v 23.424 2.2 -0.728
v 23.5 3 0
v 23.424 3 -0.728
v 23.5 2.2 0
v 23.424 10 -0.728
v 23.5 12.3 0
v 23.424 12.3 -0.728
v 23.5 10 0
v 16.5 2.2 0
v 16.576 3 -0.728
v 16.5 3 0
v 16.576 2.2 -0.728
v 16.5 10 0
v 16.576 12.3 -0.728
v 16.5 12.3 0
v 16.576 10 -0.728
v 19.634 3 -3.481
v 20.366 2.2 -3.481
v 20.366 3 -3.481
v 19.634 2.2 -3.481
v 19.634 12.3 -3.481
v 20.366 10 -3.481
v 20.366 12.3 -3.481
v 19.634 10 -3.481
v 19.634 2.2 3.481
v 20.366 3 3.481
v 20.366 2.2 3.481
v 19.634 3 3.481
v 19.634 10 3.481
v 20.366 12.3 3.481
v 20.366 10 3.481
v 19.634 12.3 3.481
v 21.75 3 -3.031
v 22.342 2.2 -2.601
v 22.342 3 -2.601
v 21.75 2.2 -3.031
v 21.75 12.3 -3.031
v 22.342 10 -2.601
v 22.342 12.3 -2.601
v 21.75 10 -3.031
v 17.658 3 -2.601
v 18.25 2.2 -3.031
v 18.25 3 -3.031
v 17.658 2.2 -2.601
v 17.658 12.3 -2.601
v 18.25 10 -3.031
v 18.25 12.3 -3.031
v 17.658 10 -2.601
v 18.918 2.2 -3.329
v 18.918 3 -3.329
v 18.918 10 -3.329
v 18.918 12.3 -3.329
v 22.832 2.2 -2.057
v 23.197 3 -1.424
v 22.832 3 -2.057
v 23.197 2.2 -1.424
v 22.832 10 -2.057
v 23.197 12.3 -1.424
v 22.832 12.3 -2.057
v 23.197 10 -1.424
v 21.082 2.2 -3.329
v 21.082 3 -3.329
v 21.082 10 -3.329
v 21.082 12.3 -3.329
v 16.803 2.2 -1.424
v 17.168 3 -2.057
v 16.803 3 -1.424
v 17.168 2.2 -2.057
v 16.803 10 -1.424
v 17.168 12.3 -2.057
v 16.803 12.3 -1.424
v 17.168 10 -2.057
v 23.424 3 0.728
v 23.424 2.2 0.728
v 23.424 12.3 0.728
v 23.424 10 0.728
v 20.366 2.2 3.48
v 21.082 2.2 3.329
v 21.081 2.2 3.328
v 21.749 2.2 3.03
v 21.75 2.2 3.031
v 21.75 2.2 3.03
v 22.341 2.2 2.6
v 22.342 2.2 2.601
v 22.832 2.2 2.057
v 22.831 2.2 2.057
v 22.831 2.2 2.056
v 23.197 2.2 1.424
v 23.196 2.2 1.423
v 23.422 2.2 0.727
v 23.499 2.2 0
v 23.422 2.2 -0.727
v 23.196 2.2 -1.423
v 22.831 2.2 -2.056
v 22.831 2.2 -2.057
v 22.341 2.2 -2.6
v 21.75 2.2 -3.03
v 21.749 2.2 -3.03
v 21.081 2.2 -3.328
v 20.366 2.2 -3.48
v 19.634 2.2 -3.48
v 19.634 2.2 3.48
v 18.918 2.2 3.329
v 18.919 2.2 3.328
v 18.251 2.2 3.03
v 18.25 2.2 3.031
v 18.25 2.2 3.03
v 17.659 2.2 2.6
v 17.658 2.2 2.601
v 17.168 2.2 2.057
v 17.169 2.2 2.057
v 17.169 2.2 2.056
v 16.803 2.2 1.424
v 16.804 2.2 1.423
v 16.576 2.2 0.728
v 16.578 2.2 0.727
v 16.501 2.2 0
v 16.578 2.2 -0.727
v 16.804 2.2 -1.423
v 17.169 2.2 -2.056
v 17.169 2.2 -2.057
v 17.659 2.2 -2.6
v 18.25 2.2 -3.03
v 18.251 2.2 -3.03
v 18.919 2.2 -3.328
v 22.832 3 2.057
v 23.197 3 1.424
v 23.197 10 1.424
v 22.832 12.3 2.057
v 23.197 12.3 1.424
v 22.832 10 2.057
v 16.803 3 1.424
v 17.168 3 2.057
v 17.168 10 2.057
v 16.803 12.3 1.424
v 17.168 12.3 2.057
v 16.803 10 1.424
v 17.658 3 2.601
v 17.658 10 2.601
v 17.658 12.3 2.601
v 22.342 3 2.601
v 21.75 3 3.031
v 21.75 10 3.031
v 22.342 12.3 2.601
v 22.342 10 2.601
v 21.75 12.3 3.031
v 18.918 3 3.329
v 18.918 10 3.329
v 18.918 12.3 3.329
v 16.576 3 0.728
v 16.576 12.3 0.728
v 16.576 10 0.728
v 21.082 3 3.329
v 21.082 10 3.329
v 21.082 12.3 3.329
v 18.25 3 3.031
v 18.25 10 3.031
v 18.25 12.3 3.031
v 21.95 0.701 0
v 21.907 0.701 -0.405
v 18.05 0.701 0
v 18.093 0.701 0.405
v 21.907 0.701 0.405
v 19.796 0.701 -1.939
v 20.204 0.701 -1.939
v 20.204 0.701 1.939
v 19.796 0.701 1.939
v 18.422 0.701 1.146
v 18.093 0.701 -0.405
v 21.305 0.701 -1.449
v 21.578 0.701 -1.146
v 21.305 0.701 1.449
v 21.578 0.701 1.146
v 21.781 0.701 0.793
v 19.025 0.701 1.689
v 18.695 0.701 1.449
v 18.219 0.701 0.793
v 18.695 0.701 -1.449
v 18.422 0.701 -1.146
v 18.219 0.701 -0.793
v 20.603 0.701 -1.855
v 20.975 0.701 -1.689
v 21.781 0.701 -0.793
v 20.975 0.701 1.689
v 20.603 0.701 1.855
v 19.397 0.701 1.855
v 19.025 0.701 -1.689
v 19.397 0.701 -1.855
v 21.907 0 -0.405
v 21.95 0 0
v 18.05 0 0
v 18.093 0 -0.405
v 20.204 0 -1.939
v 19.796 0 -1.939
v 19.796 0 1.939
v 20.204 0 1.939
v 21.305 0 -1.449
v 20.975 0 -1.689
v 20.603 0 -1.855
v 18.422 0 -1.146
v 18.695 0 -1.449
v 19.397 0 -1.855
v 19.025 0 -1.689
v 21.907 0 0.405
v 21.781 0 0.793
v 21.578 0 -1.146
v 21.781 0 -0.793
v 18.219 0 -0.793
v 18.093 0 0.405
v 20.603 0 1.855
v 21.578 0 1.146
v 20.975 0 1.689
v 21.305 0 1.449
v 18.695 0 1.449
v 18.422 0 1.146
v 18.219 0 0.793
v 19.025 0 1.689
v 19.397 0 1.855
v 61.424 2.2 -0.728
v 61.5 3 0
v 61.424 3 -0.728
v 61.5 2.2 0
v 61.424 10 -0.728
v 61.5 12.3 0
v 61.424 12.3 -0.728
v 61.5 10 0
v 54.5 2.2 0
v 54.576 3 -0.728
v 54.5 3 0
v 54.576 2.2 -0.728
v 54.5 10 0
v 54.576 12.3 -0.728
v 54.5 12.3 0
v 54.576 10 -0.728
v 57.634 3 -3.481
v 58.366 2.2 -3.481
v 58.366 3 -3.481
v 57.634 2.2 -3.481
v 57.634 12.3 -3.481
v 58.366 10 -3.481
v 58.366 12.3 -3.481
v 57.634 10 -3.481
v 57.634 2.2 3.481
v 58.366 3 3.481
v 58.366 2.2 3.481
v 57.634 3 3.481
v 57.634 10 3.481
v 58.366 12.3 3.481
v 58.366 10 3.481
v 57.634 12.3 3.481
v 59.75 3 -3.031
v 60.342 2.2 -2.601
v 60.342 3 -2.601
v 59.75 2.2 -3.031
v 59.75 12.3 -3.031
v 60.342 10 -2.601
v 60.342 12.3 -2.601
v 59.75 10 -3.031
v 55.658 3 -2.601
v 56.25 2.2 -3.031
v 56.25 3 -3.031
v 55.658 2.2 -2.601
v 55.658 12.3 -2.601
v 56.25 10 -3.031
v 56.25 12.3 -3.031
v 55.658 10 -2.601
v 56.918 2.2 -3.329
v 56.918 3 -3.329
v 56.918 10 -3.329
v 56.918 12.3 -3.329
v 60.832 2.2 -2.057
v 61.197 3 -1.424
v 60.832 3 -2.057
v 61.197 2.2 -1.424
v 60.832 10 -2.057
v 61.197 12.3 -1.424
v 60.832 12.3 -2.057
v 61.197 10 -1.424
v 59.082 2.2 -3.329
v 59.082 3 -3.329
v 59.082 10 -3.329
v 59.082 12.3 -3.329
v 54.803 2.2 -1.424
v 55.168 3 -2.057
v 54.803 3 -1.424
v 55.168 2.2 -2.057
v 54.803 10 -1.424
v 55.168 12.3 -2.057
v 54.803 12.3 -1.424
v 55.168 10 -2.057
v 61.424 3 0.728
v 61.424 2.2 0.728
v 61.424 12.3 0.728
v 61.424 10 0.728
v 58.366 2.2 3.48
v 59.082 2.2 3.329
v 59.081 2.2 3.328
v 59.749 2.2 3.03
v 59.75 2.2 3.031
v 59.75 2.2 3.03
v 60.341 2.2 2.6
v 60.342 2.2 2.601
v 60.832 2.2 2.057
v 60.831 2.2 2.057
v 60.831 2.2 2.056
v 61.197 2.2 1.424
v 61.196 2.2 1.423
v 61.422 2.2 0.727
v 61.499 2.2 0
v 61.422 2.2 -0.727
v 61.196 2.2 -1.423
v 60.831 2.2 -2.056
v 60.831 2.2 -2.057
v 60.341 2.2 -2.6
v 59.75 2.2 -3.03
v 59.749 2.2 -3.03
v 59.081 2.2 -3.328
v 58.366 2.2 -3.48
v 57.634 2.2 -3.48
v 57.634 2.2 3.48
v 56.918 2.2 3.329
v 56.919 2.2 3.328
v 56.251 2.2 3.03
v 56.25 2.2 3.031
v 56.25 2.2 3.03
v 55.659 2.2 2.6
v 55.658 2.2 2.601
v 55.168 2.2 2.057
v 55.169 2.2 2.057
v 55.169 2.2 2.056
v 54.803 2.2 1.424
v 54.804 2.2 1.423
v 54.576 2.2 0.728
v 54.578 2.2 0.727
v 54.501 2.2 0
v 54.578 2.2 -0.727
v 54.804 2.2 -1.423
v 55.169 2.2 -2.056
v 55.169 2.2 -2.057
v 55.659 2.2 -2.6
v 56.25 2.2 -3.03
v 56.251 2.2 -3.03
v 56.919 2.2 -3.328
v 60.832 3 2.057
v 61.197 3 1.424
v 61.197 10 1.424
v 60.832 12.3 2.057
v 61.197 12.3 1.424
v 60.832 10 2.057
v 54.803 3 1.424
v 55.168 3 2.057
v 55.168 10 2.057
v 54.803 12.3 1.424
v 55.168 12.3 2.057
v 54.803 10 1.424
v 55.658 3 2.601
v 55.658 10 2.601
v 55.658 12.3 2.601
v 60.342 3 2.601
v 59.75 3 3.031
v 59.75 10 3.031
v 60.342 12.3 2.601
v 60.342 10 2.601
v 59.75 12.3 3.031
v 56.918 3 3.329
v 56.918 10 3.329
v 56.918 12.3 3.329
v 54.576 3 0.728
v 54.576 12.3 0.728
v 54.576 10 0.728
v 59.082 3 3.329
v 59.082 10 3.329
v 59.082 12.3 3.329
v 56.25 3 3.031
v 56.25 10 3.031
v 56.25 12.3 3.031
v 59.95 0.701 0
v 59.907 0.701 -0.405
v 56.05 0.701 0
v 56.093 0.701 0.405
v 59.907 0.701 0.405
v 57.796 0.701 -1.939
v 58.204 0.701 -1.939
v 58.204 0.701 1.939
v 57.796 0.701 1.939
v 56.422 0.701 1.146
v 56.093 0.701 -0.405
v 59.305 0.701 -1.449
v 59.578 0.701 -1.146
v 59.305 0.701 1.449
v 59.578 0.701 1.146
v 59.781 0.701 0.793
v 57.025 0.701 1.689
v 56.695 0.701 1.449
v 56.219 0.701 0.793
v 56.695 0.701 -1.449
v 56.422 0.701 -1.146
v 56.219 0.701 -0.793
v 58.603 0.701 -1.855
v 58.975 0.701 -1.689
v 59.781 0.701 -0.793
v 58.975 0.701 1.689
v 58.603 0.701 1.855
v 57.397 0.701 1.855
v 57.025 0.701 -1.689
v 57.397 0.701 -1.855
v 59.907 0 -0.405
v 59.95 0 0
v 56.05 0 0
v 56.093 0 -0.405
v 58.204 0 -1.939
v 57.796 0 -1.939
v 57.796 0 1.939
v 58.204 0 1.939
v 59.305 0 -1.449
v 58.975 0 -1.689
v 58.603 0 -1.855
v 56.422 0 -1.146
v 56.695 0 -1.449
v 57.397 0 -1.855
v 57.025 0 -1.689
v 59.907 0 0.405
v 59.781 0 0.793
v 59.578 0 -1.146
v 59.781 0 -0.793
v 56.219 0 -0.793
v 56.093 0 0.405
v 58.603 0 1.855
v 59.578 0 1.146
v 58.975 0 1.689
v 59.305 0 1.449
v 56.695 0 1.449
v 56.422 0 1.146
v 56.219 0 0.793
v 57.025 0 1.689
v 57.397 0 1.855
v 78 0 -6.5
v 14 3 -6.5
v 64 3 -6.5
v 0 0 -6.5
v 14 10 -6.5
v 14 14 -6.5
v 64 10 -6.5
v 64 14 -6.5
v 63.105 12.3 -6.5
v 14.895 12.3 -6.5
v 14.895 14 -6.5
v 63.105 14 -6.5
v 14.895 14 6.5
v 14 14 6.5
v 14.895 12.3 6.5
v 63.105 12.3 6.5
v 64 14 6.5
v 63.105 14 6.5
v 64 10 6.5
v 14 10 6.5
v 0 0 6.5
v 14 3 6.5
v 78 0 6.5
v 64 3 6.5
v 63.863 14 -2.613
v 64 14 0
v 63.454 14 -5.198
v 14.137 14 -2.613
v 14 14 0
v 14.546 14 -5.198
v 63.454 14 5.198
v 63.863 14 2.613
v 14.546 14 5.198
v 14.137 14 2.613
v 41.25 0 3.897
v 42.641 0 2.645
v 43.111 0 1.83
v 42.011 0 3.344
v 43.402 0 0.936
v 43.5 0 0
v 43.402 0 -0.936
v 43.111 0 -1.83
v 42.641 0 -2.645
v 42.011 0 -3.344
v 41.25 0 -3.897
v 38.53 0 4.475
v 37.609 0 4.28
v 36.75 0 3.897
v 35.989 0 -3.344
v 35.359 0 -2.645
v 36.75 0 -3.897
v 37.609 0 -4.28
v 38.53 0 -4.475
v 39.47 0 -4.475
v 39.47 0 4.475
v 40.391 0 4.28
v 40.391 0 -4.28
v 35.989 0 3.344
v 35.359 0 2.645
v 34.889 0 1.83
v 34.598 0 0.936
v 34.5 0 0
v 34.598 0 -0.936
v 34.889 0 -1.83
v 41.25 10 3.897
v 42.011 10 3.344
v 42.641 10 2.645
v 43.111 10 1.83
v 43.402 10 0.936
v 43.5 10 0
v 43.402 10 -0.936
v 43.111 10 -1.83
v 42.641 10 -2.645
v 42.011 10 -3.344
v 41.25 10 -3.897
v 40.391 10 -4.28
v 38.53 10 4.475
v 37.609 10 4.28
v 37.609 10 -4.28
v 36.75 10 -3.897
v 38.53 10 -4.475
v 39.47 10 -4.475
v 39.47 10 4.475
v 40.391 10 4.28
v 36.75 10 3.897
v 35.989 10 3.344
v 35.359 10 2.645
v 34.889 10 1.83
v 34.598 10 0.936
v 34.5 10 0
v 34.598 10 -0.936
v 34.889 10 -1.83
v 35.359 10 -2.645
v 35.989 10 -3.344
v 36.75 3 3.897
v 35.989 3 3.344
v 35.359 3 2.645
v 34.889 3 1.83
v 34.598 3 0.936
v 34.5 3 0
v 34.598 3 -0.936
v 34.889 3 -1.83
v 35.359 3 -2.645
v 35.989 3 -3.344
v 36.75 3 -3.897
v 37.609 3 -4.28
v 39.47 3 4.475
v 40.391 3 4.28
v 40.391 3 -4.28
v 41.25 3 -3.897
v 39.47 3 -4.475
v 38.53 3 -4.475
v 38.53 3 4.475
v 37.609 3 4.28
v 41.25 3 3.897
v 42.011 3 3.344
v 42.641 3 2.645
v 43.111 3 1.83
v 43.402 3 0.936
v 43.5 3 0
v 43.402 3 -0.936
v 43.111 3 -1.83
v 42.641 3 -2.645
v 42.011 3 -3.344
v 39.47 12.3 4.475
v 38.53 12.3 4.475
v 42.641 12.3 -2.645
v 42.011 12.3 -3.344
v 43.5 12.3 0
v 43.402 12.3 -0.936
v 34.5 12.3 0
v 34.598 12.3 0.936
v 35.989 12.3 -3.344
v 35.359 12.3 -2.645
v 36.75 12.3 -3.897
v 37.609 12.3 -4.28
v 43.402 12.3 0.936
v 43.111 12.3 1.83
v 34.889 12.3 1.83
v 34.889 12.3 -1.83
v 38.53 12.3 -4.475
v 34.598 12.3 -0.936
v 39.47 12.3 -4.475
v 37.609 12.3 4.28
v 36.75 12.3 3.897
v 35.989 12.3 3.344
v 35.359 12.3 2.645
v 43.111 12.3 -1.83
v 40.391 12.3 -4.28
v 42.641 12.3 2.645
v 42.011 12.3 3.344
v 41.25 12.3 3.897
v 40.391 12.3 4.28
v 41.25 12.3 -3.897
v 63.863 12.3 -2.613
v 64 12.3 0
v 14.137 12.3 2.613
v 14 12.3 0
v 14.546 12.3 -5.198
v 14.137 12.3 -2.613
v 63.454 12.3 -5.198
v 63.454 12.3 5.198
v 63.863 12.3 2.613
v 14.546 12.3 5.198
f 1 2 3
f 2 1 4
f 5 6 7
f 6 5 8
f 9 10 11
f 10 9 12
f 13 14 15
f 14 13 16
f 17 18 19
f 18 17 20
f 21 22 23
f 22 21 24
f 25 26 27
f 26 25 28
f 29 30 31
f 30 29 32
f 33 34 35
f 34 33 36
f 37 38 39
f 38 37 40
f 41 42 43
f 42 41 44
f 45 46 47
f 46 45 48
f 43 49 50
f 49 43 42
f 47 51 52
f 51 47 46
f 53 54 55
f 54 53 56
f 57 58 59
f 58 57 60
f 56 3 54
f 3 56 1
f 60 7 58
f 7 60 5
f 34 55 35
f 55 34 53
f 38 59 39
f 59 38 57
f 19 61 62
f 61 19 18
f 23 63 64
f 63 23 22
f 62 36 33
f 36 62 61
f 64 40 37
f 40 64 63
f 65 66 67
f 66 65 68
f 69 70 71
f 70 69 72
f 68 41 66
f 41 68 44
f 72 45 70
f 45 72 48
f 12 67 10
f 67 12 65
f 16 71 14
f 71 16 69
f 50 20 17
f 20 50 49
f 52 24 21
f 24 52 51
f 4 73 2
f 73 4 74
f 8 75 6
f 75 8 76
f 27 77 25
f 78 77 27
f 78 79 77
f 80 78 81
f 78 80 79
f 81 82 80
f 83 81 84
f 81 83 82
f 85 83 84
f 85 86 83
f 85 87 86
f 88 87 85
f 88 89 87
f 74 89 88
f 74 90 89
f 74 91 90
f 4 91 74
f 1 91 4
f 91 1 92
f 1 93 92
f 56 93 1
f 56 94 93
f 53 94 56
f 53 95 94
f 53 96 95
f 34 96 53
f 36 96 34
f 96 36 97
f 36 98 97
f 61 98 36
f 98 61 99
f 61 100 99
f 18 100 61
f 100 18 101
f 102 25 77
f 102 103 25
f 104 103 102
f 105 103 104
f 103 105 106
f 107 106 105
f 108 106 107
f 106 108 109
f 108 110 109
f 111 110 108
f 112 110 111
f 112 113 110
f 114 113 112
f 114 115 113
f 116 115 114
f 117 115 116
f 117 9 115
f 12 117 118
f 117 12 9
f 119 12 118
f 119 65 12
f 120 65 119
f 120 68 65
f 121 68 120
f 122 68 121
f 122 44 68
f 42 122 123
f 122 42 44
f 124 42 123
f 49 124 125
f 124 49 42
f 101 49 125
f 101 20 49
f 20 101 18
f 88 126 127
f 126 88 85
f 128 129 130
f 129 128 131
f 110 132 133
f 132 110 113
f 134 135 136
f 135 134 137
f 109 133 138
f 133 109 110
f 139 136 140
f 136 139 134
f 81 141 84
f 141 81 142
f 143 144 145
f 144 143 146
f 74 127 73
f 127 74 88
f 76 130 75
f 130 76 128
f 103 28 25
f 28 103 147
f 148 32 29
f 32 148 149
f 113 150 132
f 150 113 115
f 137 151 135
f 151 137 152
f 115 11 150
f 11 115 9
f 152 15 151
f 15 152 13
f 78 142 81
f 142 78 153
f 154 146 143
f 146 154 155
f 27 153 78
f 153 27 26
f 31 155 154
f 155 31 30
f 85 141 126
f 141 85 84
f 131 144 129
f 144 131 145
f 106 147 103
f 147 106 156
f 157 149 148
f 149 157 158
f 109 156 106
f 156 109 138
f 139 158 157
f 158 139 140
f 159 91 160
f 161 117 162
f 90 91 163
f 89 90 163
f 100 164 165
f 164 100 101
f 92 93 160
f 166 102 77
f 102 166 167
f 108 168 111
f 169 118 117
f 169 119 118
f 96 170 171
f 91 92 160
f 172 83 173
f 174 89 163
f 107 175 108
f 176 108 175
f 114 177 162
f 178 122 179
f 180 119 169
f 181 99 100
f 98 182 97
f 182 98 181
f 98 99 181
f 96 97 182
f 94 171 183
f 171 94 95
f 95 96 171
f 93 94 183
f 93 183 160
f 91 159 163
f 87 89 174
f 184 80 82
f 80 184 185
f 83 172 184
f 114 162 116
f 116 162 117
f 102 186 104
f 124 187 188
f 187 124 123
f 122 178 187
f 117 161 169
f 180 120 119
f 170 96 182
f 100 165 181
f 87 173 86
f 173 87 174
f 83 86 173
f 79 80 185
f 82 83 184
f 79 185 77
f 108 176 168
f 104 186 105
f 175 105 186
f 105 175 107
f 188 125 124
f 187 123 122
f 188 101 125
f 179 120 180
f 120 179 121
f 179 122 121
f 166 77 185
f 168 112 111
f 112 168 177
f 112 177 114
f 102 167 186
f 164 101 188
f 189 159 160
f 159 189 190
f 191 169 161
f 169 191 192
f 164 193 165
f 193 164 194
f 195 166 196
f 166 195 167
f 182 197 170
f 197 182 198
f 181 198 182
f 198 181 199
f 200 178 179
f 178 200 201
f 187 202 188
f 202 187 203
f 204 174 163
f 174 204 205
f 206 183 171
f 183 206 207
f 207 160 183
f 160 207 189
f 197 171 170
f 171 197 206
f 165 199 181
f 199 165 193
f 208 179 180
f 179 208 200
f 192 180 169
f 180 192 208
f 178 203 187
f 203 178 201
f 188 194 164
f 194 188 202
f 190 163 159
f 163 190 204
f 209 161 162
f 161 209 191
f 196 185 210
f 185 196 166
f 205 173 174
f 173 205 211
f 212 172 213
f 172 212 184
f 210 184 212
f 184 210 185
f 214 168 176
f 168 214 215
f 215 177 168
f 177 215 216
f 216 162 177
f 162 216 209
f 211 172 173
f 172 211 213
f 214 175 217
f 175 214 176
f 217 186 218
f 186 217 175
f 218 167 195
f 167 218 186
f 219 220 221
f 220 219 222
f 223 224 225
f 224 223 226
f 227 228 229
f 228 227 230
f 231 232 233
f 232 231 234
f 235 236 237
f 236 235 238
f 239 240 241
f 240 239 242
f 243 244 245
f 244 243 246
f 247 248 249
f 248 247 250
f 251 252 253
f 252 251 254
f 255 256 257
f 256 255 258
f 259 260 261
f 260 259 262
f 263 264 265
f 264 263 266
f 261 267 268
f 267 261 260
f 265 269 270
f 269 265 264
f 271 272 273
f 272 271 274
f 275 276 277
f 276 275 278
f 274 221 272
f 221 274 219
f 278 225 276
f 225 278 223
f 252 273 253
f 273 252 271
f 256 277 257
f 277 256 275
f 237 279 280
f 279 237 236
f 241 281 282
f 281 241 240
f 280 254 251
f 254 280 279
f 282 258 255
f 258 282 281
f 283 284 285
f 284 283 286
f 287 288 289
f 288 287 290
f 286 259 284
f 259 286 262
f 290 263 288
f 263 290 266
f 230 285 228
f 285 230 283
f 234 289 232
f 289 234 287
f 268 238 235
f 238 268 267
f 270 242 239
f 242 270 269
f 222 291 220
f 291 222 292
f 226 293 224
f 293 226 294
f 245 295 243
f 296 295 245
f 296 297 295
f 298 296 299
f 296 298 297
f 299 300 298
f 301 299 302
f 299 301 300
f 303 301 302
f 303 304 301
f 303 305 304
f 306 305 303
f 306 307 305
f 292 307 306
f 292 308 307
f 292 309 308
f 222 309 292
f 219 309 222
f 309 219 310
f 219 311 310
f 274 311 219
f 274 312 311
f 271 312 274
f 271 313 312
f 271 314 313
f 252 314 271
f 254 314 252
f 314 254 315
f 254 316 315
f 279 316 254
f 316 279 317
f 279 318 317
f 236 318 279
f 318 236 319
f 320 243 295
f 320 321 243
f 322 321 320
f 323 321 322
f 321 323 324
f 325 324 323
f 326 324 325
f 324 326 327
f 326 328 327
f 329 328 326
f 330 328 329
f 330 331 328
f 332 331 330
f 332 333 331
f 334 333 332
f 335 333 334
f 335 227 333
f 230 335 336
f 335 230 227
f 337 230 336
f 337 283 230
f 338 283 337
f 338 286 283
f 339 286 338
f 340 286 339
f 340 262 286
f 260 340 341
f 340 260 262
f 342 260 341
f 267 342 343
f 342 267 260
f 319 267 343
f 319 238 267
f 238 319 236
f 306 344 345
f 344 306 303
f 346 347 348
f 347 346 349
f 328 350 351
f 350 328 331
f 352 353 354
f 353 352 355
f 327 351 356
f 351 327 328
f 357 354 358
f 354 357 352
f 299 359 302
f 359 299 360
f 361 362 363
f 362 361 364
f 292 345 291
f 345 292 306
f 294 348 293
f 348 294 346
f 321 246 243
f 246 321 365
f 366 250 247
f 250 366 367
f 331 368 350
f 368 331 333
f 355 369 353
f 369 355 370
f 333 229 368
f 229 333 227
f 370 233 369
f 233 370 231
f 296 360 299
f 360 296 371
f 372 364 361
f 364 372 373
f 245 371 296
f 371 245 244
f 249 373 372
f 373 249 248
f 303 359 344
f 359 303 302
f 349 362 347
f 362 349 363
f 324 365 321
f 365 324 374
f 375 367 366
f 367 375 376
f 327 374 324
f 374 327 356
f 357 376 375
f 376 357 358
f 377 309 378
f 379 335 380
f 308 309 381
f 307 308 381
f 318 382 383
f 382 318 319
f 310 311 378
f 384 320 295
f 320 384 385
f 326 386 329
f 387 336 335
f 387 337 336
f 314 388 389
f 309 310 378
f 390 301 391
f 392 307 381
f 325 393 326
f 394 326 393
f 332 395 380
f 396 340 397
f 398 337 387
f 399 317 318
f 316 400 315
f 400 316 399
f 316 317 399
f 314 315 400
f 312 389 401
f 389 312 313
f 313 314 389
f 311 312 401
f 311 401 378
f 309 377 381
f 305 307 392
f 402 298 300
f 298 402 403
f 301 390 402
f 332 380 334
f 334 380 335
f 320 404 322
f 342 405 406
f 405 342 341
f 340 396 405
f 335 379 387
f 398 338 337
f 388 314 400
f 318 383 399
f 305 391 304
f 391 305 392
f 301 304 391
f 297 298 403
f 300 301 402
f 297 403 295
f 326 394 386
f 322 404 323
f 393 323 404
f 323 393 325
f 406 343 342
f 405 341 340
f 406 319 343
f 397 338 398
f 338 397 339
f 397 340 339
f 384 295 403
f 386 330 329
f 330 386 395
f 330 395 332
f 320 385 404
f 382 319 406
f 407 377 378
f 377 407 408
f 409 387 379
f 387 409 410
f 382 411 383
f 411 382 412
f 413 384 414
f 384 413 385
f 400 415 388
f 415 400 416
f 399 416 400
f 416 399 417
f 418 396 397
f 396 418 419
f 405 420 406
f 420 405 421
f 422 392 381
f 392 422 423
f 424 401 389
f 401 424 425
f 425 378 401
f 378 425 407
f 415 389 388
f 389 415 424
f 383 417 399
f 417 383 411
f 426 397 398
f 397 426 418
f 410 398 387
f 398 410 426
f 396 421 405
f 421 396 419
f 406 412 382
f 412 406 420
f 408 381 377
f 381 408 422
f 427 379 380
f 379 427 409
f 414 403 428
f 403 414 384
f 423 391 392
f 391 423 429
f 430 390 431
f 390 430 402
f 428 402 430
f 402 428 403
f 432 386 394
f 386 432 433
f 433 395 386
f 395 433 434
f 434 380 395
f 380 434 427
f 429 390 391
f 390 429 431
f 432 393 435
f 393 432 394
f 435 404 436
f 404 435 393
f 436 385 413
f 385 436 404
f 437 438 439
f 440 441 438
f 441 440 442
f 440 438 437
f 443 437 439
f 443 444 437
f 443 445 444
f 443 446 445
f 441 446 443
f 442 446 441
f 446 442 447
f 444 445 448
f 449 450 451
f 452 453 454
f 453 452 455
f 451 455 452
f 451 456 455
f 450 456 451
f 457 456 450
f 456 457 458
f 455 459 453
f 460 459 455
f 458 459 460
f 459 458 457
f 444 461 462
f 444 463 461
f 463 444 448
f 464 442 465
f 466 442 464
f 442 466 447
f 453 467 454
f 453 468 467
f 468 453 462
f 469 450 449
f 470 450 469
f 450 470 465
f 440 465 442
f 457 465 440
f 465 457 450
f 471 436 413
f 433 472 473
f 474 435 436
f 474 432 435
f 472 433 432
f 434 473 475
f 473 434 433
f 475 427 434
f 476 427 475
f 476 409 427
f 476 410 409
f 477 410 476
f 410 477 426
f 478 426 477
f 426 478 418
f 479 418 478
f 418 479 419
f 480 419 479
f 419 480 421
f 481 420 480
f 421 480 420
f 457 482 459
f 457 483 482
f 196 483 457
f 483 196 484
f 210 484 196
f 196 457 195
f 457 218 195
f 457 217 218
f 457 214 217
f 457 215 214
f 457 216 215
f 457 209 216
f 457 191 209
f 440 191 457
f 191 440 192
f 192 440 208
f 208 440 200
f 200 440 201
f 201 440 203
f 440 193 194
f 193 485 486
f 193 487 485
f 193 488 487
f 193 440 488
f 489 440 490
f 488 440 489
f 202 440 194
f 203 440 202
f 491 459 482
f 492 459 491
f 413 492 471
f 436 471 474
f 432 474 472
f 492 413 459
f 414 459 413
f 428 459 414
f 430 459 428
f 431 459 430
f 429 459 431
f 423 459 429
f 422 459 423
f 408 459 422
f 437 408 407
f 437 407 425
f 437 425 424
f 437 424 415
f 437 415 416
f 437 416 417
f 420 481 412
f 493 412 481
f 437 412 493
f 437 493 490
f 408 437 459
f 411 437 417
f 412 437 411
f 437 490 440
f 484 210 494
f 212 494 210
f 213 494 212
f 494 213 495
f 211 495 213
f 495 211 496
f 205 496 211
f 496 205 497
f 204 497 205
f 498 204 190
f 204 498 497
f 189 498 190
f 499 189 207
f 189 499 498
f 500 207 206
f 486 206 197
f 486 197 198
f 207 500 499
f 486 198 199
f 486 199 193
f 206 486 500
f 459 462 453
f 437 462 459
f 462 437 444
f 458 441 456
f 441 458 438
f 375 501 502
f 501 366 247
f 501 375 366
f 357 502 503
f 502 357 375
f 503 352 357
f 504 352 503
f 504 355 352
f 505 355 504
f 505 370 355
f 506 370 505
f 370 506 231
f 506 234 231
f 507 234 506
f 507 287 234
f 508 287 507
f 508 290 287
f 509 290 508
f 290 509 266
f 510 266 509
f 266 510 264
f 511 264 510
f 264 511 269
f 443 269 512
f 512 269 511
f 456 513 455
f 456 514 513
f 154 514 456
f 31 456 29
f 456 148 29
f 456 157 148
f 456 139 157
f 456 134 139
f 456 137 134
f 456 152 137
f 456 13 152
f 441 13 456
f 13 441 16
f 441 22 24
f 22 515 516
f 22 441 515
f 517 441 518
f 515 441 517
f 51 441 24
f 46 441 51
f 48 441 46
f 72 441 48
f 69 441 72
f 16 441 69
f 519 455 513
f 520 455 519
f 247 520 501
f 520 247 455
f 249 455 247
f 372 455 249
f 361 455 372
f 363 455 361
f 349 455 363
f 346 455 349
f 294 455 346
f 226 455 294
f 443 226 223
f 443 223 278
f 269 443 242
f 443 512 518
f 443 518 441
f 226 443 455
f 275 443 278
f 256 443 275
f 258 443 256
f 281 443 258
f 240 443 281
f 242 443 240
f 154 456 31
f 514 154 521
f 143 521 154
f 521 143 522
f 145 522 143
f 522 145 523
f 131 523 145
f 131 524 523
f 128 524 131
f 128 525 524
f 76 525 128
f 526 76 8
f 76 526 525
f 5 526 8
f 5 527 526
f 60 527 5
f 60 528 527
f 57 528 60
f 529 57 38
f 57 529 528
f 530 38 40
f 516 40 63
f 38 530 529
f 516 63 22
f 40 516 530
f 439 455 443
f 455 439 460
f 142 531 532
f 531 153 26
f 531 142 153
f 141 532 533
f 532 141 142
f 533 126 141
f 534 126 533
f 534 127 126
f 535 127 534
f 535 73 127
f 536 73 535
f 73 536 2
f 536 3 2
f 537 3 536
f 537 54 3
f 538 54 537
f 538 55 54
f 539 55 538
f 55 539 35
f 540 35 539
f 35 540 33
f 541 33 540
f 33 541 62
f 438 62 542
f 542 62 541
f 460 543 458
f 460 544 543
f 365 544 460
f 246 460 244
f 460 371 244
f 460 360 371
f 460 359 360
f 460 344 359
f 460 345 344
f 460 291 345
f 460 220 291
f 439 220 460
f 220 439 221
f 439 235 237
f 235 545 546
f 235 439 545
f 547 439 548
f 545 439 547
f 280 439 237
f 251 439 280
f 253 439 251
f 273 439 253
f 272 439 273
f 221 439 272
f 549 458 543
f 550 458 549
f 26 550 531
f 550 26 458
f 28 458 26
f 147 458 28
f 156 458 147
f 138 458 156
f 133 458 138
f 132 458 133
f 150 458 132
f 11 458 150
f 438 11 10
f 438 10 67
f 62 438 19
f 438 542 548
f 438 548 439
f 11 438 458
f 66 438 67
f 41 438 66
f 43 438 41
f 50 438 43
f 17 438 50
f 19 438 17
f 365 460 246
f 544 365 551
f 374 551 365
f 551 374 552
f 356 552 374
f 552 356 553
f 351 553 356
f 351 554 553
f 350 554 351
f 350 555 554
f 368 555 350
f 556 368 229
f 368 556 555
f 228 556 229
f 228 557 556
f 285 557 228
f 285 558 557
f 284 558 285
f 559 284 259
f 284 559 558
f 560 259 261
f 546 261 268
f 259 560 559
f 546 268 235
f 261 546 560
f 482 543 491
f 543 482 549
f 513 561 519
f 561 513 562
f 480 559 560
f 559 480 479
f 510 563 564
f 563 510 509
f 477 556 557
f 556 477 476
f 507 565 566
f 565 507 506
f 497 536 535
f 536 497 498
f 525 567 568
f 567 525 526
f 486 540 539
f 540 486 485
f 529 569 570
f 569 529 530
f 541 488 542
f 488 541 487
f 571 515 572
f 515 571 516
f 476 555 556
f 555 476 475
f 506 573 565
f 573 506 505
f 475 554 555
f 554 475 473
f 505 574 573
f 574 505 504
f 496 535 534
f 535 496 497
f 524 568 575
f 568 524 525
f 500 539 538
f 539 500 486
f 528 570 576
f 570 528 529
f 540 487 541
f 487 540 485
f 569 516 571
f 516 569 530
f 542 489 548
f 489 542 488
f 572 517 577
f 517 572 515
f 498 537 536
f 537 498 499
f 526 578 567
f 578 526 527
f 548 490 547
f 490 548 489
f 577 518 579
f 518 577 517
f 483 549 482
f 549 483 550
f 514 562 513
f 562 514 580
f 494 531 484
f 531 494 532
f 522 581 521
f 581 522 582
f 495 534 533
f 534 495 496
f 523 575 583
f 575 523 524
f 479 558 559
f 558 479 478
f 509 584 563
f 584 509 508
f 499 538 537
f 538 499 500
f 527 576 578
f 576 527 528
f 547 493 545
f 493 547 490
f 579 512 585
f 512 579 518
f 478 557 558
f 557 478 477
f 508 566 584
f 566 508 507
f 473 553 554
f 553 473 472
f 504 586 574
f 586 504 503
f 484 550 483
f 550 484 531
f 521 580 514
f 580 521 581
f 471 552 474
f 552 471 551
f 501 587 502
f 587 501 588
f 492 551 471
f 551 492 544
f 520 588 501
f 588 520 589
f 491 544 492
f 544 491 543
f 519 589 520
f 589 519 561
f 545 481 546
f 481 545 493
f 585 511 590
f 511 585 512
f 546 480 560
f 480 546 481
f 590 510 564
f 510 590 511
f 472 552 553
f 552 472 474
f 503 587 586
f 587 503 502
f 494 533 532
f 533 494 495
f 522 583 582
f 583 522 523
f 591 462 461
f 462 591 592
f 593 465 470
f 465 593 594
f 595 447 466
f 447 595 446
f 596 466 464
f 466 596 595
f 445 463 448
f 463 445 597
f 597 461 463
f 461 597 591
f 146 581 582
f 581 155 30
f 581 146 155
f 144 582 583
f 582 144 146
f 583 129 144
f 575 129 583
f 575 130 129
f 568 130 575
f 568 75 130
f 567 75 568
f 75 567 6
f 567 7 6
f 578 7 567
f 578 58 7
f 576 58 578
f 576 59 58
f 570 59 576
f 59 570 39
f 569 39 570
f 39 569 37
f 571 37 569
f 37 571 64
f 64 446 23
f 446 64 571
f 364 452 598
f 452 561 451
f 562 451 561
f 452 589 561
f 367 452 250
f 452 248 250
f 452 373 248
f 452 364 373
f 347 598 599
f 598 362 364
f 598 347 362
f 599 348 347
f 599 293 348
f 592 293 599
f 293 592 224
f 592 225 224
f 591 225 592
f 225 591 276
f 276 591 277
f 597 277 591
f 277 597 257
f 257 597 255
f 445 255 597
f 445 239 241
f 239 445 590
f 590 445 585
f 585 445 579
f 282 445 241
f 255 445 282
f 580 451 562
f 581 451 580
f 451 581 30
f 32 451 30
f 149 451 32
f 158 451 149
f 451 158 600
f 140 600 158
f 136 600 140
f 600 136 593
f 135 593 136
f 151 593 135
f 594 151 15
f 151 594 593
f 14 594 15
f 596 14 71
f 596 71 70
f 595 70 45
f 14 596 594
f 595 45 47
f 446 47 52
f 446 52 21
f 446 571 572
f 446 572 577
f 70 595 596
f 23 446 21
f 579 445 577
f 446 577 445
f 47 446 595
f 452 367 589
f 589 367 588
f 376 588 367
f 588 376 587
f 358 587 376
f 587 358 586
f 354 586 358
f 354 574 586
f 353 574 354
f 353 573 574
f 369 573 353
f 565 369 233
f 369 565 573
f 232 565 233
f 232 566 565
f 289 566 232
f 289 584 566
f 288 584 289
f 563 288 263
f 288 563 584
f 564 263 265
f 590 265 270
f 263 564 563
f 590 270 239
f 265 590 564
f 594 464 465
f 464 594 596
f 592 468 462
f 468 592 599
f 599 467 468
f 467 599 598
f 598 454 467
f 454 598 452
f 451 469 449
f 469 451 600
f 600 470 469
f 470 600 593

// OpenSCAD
difference() {
translate([0,0,-6.5])
    linear_extrude(height=13)
    polygon(points=[
    [0,0],
    [78,0],
    [78-14,14],
    [14,14],
    [14,3],
    [78-14,3],
    [78-14,10],
    [14,10]
    ], paths=[
    [0,1,2,3],
    [4,5,6,7]
    ]);



translate([14+25,-1,0])
    rotate([-90,0,0])
    cylinder(h=16,r1=4.5,r2=4.5,$fn=30);

for(x=[0:1])
translate([20+x*(78-20-20),0,0])
rotate([-90,0,0]) {
    translate([0,0,2.2])
        cylinder(h=16,r1=3.5,r2=3.5,$fn=30);
    translate([0,0,0.701])
        cylinder(h=1.5,r1=1.95,r2=3.5,$fn=30);
    translate([0,0,-0.01])
        cylinder(h=16,r1=1.95,r2=1.95,$fn=30);
}
translate([14+25,12.3,0])
    rotate([-90,0,0])
    cylinder(h=2,r1=25,r2=25,$fn=60);

}
